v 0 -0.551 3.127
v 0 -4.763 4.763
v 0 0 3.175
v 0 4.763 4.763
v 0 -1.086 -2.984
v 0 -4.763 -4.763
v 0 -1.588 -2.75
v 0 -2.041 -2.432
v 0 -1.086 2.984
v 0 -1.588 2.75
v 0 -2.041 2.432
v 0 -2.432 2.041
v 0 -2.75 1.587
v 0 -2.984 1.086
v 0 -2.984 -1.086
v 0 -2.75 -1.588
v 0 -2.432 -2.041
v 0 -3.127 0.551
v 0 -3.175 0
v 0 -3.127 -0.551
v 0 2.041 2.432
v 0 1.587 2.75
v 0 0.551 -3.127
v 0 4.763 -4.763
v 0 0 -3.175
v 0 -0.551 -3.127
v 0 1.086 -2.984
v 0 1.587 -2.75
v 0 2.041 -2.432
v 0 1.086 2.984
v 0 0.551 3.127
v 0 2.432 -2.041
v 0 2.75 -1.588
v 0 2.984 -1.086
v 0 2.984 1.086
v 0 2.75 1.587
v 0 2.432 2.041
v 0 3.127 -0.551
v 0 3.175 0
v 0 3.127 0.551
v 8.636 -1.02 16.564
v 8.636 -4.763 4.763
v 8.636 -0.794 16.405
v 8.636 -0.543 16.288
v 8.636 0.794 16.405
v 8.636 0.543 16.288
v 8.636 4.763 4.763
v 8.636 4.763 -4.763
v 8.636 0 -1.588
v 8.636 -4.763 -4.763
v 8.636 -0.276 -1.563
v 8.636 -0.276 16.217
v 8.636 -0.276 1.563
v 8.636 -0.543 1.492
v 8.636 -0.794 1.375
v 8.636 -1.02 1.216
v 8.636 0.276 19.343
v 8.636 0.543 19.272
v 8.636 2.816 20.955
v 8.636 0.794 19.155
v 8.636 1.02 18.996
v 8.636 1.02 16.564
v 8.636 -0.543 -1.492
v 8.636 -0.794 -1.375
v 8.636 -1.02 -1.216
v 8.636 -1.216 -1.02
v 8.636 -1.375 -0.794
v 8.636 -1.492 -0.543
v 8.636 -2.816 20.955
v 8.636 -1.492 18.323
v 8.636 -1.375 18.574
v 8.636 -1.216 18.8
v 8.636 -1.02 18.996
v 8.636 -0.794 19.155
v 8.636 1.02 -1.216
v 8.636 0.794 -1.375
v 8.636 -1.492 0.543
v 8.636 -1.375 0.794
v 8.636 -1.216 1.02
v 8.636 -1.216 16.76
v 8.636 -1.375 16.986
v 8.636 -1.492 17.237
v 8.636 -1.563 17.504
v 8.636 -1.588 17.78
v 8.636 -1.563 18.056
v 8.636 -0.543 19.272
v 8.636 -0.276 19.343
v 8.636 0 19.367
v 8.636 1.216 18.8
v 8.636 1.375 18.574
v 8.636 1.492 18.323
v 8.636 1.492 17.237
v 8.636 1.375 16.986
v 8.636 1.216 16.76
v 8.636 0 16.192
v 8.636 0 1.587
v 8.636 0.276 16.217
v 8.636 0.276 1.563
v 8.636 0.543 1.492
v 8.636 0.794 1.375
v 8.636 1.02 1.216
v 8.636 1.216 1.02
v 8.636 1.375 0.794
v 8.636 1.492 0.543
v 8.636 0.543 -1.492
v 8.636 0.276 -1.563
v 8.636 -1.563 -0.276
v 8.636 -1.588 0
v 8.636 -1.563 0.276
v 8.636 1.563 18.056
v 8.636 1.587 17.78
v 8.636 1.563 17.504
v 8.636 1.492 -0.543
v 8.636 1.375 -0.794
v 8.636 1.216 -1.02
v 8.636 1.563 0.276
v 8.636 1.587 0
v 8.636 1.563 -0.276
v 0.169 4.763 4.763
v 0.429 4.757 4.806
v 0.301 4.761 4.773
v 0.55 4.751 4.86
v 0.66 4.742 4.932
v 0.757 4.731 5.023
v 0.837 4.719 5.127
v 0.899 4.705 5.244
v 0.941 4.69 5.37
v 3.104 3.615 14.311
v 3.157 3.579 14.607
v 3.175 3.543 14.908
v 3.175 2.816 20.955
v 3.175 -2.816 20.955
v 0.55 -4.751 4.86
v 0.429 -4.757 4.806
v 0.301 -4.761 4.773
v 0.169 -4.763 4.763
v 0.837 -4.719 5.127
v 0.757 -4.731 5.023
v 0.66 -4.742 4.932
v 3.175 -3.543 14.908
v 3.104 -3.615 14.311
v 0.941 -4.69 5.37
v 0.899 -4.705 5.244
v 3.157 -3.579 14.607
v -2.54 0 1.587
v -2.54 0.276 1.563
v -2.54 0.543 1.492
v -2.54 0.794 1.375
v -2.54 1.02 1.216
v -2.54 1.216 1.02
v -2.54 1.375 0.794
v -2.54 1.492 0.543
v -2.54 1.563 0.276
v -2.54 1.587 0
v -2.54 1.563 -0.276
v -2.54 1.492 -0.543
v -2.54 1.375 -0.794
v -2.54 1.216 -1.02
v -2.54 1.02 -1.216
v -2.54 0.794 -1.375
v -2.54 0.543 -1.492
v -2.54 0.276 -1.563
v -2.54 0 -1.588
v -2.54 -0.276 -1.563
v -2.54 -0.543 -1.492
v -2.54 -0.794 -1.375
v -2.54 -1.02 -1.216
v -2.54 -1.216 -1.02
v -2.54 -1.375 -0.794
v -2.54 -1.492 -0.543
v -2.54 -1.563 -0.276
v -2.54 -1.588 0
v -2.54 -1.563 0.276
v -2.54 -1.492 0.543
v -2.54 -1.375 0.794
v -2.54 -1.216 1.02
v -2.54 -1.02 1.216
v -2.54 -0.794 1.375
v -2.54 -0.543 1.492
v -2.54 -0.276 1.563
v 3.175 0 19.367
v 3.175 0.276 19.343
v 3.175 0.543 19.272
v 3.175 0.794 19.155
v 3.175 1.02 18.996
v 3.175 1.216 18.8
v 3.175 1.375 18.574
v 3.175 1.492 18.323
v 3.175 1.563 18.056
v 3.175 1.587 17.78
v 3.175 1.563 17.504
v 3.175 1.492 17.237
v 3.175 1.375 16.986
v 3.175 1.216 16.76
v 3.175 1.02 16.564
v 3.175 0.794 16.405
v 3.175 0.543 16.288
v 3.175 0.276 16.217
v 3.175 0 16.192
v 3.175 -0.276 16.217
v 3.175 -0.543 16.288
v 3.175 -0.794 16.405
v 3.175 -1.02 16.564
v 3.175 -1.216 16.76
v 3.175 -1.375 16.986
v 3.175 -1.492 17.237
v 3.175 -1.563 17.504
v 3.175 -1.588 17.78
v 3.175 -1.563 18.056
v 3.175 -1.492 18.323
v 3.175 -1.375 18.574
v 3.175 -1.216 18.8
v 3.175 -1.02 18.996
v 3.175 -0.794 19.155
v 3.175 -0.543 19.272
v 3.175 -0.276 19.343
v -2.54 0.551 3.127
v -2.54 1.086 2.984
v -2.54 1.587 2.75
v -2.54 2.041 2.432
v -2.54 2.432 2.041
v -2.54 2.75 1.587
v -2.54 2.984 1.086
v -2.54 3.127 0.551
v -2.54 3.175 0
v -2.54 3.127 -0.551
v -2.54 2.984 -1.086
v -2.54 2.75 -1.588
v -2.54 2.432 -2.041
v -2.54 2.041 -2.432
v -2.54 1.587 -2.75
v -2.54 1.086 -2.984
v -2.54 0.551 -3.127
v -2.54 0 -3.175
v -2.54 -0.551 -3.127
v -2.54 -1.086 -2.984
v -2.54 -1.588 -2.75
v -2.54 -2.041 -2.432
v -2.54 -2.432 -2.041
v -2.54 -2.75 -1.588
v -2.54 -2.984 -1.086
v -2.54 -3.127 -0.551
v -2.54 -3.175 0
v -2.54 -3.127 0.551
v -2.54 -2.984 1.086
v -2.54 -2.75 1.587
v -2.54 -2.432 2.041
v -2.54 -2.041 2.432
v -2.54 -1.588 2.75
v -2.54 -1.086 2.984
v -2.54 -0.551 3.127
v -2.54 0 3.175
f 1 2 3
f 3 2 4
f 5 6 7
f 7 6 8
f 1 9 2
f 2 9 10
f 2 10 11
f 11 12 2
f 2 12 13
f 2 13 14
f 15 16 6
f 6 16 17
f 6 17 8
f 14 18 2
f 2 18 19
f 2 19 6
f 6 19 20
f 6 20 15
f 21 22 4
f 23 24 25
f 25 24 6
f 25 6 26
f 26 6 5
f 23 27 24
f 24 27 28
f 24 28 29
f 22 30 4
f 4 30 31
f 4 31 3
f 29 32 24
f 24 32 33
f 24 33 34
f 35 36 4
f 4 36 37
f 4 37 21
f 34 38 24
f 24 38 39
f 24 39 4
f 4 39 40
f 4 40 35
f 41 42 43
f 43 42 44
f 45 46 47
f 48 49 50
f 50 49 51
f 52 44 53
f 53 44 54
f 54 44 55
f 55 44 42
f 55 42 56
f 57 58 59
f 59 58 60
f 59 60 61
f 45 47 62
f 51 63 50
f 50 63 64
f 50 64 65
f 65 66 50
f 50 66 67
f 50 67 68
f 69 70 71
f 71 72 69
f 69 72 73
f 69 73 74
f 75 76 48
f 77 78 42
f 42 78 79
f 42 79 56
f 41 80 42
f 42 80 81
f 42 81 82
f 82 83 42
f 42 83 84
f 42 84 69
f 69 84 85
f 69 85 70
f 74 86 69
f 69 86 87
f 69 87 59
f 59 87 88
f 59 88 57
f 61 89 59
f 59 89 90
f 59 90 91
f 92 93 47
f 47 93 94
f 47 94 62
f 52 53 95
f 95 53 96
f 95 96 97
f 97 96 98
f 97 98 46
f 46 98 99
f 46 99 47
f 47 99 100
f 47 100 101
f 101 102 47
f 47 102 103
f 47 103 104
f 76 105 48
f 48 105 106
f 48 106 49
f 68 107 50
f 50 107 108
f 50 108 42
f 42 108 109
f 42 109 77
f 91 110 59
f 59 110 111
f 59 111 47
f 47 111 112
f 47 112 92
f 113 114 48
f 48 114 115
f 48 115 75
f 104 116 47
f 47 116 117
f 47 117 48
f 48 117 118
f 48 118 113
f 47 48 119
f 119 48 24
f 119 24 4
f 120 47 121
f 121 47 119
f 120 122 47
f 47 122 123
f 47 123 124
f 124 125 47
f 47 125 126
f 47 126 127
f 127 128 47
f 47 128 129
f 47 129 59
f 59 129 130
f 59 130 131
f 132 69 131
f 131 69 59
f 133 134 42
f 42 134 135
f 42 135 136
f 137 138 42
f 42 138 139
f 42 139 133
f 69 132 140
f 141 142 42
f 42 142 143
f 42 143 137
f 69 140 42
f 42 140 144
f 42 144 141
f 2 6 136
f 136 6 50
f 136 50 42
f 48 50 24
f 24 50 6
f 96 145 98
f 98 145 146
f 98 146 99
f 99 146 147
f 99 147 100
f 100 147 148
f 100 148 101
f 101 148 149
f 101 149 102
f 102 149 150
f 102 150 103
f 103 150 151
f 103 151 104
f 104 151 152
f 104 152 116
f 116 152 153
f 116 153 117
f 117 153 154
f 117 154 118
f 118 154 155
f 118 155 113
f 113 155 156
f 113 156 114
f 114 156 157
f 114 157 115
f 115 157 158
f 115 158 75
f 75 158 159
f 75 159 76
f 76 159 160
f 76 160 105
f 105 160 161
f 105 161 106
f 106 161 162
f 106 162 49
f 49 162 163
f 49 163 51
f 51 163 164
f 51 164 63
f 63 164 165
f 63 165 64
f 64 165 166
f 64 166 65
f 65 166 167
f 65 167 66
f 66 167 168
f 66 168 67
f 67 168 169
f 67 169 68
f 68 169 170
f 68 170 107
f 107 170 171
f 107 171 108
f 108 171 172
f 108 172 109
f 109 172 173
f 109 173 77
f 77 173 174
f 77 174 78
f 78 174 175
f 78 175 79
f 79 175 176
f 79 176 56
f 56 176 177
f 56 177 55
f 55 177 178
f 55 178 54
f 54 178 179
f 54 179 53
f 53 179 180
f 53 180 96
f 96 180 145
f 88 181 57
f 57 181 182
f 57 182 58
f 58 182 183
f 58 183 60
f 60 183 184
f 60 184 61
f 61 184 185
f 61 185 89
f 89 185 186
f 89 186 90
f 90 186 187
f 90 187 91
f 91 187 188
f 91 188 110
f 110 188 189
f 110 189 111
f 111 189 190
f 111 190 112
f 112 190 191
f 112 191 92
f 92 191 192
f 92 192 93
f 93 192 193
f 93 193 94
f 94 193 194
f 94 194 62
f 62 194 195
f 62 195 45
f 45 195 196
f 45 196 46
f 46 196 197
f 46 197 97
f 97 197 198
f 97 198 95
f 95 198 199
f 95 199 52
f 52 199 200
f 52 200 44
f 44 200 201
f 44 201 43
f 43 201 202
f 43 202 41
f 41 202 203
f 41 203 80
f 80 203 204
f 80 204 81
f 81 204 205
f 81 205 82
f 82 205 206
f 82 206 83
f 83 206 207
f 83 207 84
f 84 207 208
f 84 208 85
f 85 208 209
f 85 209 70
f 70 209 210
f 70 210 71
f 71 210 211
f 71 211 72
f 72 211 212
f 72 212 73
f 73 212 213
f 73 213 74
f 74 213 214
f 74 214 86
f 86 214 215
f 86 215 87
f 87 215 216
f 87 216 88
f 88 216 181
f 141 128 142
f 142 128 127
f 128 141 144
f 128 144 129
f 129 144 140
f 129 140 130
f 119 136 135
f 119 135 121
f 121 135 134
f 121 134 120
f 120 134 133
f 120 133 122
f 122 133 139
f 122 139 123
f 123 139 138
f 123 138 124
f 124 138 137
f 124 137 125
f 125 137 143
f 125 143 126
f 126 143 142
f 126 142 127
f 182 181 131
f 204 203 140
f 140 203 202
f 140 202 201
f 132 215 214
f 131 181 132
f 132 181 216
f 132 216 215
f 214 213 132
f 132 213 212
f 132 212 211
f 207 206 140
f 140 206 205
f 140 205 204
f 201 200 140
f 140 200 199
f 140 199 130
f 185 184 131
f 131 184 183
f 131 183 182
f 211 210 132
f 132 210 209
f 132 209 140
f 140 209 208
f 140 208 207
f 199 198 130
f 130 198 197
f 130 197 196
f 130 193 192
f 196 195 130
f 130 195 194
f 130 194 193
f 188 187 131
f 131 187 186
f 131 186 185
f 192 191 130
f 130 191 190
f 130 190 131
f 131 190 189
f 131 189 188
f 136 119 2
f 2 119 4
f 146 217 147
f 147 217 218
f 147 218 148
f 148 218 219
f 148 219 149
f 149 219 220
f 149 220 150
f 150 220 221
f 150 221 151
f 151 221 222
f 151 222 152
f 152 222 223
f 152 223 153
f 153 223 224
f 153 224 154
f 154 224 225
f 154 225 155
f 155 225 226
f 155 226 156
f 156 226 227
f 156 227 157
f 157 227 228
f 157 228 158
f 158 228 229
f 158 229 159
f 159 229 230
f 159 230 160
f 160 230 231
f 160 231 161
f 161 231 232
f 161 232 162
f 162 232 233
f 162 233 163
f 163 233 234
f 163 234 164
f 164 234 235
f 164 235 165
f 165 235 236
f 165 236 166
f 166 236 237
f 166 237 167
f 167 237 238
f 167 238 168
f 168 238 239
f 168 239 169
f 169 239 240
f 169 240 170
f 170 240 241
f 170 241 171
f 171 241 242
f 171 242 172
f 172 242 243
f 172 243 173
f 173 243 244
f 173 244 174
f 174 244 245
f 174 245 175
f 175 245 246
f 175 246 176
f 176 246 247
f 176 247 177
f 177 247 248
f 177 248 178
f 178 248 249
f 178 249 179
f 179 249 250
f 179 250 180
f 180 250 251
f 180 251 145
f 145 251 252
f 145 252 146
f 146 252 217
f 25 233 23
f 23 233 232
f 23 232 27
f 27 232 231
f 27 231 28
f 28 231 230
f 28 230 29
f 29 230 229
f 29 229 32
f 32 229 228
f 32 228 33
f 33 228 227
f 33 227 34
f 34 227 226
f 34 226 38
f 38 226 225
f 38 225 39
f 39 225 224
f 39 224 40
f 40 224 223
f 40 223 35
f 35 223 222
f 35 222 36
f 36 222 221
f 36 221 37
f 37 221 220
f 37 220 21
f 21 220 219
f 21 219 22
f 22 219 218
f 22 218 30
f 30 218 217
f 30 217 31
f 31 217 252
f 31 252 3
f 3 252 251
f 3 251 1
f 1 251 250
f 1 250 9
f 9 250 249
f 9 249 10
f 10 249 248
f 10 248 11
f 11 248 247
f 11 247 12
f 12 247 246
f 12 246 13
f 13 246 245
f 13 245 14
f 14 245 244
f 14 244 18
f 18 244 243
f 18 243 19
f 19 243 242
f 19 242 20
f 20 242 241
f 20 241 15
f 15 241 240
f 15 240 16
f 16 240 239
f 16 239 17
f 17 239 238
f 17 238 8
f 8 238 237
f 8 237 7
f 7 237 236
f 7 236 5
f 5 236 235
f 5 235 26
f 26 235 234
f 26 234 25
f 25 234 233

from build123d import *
from build123d.topology import SkipClean

# Parameters (mm, degrees)
SKETCH1_R               = 1.5875
BOSS_EXTRUDE1_DEPTH     = 8.636
CUT_EXTRUDE1_DEPTH      = 24.159747996
CUT_EXTRUDE1_DEPTH_BACK = 24.159747996
BOSS_EXTRUDE2_START     = 2.54
SKETCH3_R               = 3.175
SKETCH3_R_2             = 1.5875
BOSS_EXTRUDE2_DEPTH     = 2.54


with BuildPart() as part:
    # Sketch1 → Boss-Extrude1 (new body)
    with BuildSketch(Plane(origin=(0, 0, 0), x_dir=(0, 0, -1), z_dir=(1, 0, 0))):
        Polygon((4.7625, 4.7625), (4.7625, -4.7625), (-4.7625, -4.7625), (-20.955, -2.816231014), (-20.955, 2.816231014), (-4.7625, 4.7625), align=None)
        Circle(SKETCH1_R, mode=Mode.SUBTRACT)
        with Locations((-17.78, 0)):
            Circle(SKETCH1_R, mode=Mode.SUBTRACT)
    extrude(amount=BOSS_EXTRUDE1_DEPTH)

    # Sketch2 → Cut-Extrude1 (cut, two sides: drawn at the far end of the back side and taken through both)
    with BuildSketch(Plane(origin=(0, 0, 0), x_dir=(1, 0, 0), z_dir=(0, 1, 0)).offset(-CUT_EXTRUDE1_DEPTH_BACK)):
        with BuildLine():
            Line((0.940628704, -5.369598643), (3.103775286, -14.310604516))
            ThreePointArc((3.103775286, -14.310604516), (3.157130967, -14.607130839), (3.175, -14.907888859))
            Line((3.175, -14.907888859), (3.175, -20.955))
            Line((3.175, -20.955), (0, -20.955))
            Line((0, -20.955), (0, -4.7625))
            Line((0, -4.7625), (0.169136427, -4.7625))
            ThreePointArc((0.169136427, -4.7625), (0.659995138, -4.932473767), (0.940628704, -5.369598643))
        make_face()
    extrude(amount=CUT_EXTRUDE1_DEPTH + CUT_EXTRUDE1_DEPTH_BACK, mode=Mode.SUBTRACT)

    # Sketch3 → Boss-Extrude2 (add)
    with SkipClean():  # the faces are left unmerged after this step: merging them gives an invalid solid
        with BuildSketch(Plane.ZY.offset(BOSS_EXTRUDE2_START)):
            Circle(SKETCH3_R)
            Circle(SKETCH3_R_2, mode=Mode.SUBTRACT)
        extrude(amount=-BOSS_EXTRUDE2_DEPTH)


solid = part.part
